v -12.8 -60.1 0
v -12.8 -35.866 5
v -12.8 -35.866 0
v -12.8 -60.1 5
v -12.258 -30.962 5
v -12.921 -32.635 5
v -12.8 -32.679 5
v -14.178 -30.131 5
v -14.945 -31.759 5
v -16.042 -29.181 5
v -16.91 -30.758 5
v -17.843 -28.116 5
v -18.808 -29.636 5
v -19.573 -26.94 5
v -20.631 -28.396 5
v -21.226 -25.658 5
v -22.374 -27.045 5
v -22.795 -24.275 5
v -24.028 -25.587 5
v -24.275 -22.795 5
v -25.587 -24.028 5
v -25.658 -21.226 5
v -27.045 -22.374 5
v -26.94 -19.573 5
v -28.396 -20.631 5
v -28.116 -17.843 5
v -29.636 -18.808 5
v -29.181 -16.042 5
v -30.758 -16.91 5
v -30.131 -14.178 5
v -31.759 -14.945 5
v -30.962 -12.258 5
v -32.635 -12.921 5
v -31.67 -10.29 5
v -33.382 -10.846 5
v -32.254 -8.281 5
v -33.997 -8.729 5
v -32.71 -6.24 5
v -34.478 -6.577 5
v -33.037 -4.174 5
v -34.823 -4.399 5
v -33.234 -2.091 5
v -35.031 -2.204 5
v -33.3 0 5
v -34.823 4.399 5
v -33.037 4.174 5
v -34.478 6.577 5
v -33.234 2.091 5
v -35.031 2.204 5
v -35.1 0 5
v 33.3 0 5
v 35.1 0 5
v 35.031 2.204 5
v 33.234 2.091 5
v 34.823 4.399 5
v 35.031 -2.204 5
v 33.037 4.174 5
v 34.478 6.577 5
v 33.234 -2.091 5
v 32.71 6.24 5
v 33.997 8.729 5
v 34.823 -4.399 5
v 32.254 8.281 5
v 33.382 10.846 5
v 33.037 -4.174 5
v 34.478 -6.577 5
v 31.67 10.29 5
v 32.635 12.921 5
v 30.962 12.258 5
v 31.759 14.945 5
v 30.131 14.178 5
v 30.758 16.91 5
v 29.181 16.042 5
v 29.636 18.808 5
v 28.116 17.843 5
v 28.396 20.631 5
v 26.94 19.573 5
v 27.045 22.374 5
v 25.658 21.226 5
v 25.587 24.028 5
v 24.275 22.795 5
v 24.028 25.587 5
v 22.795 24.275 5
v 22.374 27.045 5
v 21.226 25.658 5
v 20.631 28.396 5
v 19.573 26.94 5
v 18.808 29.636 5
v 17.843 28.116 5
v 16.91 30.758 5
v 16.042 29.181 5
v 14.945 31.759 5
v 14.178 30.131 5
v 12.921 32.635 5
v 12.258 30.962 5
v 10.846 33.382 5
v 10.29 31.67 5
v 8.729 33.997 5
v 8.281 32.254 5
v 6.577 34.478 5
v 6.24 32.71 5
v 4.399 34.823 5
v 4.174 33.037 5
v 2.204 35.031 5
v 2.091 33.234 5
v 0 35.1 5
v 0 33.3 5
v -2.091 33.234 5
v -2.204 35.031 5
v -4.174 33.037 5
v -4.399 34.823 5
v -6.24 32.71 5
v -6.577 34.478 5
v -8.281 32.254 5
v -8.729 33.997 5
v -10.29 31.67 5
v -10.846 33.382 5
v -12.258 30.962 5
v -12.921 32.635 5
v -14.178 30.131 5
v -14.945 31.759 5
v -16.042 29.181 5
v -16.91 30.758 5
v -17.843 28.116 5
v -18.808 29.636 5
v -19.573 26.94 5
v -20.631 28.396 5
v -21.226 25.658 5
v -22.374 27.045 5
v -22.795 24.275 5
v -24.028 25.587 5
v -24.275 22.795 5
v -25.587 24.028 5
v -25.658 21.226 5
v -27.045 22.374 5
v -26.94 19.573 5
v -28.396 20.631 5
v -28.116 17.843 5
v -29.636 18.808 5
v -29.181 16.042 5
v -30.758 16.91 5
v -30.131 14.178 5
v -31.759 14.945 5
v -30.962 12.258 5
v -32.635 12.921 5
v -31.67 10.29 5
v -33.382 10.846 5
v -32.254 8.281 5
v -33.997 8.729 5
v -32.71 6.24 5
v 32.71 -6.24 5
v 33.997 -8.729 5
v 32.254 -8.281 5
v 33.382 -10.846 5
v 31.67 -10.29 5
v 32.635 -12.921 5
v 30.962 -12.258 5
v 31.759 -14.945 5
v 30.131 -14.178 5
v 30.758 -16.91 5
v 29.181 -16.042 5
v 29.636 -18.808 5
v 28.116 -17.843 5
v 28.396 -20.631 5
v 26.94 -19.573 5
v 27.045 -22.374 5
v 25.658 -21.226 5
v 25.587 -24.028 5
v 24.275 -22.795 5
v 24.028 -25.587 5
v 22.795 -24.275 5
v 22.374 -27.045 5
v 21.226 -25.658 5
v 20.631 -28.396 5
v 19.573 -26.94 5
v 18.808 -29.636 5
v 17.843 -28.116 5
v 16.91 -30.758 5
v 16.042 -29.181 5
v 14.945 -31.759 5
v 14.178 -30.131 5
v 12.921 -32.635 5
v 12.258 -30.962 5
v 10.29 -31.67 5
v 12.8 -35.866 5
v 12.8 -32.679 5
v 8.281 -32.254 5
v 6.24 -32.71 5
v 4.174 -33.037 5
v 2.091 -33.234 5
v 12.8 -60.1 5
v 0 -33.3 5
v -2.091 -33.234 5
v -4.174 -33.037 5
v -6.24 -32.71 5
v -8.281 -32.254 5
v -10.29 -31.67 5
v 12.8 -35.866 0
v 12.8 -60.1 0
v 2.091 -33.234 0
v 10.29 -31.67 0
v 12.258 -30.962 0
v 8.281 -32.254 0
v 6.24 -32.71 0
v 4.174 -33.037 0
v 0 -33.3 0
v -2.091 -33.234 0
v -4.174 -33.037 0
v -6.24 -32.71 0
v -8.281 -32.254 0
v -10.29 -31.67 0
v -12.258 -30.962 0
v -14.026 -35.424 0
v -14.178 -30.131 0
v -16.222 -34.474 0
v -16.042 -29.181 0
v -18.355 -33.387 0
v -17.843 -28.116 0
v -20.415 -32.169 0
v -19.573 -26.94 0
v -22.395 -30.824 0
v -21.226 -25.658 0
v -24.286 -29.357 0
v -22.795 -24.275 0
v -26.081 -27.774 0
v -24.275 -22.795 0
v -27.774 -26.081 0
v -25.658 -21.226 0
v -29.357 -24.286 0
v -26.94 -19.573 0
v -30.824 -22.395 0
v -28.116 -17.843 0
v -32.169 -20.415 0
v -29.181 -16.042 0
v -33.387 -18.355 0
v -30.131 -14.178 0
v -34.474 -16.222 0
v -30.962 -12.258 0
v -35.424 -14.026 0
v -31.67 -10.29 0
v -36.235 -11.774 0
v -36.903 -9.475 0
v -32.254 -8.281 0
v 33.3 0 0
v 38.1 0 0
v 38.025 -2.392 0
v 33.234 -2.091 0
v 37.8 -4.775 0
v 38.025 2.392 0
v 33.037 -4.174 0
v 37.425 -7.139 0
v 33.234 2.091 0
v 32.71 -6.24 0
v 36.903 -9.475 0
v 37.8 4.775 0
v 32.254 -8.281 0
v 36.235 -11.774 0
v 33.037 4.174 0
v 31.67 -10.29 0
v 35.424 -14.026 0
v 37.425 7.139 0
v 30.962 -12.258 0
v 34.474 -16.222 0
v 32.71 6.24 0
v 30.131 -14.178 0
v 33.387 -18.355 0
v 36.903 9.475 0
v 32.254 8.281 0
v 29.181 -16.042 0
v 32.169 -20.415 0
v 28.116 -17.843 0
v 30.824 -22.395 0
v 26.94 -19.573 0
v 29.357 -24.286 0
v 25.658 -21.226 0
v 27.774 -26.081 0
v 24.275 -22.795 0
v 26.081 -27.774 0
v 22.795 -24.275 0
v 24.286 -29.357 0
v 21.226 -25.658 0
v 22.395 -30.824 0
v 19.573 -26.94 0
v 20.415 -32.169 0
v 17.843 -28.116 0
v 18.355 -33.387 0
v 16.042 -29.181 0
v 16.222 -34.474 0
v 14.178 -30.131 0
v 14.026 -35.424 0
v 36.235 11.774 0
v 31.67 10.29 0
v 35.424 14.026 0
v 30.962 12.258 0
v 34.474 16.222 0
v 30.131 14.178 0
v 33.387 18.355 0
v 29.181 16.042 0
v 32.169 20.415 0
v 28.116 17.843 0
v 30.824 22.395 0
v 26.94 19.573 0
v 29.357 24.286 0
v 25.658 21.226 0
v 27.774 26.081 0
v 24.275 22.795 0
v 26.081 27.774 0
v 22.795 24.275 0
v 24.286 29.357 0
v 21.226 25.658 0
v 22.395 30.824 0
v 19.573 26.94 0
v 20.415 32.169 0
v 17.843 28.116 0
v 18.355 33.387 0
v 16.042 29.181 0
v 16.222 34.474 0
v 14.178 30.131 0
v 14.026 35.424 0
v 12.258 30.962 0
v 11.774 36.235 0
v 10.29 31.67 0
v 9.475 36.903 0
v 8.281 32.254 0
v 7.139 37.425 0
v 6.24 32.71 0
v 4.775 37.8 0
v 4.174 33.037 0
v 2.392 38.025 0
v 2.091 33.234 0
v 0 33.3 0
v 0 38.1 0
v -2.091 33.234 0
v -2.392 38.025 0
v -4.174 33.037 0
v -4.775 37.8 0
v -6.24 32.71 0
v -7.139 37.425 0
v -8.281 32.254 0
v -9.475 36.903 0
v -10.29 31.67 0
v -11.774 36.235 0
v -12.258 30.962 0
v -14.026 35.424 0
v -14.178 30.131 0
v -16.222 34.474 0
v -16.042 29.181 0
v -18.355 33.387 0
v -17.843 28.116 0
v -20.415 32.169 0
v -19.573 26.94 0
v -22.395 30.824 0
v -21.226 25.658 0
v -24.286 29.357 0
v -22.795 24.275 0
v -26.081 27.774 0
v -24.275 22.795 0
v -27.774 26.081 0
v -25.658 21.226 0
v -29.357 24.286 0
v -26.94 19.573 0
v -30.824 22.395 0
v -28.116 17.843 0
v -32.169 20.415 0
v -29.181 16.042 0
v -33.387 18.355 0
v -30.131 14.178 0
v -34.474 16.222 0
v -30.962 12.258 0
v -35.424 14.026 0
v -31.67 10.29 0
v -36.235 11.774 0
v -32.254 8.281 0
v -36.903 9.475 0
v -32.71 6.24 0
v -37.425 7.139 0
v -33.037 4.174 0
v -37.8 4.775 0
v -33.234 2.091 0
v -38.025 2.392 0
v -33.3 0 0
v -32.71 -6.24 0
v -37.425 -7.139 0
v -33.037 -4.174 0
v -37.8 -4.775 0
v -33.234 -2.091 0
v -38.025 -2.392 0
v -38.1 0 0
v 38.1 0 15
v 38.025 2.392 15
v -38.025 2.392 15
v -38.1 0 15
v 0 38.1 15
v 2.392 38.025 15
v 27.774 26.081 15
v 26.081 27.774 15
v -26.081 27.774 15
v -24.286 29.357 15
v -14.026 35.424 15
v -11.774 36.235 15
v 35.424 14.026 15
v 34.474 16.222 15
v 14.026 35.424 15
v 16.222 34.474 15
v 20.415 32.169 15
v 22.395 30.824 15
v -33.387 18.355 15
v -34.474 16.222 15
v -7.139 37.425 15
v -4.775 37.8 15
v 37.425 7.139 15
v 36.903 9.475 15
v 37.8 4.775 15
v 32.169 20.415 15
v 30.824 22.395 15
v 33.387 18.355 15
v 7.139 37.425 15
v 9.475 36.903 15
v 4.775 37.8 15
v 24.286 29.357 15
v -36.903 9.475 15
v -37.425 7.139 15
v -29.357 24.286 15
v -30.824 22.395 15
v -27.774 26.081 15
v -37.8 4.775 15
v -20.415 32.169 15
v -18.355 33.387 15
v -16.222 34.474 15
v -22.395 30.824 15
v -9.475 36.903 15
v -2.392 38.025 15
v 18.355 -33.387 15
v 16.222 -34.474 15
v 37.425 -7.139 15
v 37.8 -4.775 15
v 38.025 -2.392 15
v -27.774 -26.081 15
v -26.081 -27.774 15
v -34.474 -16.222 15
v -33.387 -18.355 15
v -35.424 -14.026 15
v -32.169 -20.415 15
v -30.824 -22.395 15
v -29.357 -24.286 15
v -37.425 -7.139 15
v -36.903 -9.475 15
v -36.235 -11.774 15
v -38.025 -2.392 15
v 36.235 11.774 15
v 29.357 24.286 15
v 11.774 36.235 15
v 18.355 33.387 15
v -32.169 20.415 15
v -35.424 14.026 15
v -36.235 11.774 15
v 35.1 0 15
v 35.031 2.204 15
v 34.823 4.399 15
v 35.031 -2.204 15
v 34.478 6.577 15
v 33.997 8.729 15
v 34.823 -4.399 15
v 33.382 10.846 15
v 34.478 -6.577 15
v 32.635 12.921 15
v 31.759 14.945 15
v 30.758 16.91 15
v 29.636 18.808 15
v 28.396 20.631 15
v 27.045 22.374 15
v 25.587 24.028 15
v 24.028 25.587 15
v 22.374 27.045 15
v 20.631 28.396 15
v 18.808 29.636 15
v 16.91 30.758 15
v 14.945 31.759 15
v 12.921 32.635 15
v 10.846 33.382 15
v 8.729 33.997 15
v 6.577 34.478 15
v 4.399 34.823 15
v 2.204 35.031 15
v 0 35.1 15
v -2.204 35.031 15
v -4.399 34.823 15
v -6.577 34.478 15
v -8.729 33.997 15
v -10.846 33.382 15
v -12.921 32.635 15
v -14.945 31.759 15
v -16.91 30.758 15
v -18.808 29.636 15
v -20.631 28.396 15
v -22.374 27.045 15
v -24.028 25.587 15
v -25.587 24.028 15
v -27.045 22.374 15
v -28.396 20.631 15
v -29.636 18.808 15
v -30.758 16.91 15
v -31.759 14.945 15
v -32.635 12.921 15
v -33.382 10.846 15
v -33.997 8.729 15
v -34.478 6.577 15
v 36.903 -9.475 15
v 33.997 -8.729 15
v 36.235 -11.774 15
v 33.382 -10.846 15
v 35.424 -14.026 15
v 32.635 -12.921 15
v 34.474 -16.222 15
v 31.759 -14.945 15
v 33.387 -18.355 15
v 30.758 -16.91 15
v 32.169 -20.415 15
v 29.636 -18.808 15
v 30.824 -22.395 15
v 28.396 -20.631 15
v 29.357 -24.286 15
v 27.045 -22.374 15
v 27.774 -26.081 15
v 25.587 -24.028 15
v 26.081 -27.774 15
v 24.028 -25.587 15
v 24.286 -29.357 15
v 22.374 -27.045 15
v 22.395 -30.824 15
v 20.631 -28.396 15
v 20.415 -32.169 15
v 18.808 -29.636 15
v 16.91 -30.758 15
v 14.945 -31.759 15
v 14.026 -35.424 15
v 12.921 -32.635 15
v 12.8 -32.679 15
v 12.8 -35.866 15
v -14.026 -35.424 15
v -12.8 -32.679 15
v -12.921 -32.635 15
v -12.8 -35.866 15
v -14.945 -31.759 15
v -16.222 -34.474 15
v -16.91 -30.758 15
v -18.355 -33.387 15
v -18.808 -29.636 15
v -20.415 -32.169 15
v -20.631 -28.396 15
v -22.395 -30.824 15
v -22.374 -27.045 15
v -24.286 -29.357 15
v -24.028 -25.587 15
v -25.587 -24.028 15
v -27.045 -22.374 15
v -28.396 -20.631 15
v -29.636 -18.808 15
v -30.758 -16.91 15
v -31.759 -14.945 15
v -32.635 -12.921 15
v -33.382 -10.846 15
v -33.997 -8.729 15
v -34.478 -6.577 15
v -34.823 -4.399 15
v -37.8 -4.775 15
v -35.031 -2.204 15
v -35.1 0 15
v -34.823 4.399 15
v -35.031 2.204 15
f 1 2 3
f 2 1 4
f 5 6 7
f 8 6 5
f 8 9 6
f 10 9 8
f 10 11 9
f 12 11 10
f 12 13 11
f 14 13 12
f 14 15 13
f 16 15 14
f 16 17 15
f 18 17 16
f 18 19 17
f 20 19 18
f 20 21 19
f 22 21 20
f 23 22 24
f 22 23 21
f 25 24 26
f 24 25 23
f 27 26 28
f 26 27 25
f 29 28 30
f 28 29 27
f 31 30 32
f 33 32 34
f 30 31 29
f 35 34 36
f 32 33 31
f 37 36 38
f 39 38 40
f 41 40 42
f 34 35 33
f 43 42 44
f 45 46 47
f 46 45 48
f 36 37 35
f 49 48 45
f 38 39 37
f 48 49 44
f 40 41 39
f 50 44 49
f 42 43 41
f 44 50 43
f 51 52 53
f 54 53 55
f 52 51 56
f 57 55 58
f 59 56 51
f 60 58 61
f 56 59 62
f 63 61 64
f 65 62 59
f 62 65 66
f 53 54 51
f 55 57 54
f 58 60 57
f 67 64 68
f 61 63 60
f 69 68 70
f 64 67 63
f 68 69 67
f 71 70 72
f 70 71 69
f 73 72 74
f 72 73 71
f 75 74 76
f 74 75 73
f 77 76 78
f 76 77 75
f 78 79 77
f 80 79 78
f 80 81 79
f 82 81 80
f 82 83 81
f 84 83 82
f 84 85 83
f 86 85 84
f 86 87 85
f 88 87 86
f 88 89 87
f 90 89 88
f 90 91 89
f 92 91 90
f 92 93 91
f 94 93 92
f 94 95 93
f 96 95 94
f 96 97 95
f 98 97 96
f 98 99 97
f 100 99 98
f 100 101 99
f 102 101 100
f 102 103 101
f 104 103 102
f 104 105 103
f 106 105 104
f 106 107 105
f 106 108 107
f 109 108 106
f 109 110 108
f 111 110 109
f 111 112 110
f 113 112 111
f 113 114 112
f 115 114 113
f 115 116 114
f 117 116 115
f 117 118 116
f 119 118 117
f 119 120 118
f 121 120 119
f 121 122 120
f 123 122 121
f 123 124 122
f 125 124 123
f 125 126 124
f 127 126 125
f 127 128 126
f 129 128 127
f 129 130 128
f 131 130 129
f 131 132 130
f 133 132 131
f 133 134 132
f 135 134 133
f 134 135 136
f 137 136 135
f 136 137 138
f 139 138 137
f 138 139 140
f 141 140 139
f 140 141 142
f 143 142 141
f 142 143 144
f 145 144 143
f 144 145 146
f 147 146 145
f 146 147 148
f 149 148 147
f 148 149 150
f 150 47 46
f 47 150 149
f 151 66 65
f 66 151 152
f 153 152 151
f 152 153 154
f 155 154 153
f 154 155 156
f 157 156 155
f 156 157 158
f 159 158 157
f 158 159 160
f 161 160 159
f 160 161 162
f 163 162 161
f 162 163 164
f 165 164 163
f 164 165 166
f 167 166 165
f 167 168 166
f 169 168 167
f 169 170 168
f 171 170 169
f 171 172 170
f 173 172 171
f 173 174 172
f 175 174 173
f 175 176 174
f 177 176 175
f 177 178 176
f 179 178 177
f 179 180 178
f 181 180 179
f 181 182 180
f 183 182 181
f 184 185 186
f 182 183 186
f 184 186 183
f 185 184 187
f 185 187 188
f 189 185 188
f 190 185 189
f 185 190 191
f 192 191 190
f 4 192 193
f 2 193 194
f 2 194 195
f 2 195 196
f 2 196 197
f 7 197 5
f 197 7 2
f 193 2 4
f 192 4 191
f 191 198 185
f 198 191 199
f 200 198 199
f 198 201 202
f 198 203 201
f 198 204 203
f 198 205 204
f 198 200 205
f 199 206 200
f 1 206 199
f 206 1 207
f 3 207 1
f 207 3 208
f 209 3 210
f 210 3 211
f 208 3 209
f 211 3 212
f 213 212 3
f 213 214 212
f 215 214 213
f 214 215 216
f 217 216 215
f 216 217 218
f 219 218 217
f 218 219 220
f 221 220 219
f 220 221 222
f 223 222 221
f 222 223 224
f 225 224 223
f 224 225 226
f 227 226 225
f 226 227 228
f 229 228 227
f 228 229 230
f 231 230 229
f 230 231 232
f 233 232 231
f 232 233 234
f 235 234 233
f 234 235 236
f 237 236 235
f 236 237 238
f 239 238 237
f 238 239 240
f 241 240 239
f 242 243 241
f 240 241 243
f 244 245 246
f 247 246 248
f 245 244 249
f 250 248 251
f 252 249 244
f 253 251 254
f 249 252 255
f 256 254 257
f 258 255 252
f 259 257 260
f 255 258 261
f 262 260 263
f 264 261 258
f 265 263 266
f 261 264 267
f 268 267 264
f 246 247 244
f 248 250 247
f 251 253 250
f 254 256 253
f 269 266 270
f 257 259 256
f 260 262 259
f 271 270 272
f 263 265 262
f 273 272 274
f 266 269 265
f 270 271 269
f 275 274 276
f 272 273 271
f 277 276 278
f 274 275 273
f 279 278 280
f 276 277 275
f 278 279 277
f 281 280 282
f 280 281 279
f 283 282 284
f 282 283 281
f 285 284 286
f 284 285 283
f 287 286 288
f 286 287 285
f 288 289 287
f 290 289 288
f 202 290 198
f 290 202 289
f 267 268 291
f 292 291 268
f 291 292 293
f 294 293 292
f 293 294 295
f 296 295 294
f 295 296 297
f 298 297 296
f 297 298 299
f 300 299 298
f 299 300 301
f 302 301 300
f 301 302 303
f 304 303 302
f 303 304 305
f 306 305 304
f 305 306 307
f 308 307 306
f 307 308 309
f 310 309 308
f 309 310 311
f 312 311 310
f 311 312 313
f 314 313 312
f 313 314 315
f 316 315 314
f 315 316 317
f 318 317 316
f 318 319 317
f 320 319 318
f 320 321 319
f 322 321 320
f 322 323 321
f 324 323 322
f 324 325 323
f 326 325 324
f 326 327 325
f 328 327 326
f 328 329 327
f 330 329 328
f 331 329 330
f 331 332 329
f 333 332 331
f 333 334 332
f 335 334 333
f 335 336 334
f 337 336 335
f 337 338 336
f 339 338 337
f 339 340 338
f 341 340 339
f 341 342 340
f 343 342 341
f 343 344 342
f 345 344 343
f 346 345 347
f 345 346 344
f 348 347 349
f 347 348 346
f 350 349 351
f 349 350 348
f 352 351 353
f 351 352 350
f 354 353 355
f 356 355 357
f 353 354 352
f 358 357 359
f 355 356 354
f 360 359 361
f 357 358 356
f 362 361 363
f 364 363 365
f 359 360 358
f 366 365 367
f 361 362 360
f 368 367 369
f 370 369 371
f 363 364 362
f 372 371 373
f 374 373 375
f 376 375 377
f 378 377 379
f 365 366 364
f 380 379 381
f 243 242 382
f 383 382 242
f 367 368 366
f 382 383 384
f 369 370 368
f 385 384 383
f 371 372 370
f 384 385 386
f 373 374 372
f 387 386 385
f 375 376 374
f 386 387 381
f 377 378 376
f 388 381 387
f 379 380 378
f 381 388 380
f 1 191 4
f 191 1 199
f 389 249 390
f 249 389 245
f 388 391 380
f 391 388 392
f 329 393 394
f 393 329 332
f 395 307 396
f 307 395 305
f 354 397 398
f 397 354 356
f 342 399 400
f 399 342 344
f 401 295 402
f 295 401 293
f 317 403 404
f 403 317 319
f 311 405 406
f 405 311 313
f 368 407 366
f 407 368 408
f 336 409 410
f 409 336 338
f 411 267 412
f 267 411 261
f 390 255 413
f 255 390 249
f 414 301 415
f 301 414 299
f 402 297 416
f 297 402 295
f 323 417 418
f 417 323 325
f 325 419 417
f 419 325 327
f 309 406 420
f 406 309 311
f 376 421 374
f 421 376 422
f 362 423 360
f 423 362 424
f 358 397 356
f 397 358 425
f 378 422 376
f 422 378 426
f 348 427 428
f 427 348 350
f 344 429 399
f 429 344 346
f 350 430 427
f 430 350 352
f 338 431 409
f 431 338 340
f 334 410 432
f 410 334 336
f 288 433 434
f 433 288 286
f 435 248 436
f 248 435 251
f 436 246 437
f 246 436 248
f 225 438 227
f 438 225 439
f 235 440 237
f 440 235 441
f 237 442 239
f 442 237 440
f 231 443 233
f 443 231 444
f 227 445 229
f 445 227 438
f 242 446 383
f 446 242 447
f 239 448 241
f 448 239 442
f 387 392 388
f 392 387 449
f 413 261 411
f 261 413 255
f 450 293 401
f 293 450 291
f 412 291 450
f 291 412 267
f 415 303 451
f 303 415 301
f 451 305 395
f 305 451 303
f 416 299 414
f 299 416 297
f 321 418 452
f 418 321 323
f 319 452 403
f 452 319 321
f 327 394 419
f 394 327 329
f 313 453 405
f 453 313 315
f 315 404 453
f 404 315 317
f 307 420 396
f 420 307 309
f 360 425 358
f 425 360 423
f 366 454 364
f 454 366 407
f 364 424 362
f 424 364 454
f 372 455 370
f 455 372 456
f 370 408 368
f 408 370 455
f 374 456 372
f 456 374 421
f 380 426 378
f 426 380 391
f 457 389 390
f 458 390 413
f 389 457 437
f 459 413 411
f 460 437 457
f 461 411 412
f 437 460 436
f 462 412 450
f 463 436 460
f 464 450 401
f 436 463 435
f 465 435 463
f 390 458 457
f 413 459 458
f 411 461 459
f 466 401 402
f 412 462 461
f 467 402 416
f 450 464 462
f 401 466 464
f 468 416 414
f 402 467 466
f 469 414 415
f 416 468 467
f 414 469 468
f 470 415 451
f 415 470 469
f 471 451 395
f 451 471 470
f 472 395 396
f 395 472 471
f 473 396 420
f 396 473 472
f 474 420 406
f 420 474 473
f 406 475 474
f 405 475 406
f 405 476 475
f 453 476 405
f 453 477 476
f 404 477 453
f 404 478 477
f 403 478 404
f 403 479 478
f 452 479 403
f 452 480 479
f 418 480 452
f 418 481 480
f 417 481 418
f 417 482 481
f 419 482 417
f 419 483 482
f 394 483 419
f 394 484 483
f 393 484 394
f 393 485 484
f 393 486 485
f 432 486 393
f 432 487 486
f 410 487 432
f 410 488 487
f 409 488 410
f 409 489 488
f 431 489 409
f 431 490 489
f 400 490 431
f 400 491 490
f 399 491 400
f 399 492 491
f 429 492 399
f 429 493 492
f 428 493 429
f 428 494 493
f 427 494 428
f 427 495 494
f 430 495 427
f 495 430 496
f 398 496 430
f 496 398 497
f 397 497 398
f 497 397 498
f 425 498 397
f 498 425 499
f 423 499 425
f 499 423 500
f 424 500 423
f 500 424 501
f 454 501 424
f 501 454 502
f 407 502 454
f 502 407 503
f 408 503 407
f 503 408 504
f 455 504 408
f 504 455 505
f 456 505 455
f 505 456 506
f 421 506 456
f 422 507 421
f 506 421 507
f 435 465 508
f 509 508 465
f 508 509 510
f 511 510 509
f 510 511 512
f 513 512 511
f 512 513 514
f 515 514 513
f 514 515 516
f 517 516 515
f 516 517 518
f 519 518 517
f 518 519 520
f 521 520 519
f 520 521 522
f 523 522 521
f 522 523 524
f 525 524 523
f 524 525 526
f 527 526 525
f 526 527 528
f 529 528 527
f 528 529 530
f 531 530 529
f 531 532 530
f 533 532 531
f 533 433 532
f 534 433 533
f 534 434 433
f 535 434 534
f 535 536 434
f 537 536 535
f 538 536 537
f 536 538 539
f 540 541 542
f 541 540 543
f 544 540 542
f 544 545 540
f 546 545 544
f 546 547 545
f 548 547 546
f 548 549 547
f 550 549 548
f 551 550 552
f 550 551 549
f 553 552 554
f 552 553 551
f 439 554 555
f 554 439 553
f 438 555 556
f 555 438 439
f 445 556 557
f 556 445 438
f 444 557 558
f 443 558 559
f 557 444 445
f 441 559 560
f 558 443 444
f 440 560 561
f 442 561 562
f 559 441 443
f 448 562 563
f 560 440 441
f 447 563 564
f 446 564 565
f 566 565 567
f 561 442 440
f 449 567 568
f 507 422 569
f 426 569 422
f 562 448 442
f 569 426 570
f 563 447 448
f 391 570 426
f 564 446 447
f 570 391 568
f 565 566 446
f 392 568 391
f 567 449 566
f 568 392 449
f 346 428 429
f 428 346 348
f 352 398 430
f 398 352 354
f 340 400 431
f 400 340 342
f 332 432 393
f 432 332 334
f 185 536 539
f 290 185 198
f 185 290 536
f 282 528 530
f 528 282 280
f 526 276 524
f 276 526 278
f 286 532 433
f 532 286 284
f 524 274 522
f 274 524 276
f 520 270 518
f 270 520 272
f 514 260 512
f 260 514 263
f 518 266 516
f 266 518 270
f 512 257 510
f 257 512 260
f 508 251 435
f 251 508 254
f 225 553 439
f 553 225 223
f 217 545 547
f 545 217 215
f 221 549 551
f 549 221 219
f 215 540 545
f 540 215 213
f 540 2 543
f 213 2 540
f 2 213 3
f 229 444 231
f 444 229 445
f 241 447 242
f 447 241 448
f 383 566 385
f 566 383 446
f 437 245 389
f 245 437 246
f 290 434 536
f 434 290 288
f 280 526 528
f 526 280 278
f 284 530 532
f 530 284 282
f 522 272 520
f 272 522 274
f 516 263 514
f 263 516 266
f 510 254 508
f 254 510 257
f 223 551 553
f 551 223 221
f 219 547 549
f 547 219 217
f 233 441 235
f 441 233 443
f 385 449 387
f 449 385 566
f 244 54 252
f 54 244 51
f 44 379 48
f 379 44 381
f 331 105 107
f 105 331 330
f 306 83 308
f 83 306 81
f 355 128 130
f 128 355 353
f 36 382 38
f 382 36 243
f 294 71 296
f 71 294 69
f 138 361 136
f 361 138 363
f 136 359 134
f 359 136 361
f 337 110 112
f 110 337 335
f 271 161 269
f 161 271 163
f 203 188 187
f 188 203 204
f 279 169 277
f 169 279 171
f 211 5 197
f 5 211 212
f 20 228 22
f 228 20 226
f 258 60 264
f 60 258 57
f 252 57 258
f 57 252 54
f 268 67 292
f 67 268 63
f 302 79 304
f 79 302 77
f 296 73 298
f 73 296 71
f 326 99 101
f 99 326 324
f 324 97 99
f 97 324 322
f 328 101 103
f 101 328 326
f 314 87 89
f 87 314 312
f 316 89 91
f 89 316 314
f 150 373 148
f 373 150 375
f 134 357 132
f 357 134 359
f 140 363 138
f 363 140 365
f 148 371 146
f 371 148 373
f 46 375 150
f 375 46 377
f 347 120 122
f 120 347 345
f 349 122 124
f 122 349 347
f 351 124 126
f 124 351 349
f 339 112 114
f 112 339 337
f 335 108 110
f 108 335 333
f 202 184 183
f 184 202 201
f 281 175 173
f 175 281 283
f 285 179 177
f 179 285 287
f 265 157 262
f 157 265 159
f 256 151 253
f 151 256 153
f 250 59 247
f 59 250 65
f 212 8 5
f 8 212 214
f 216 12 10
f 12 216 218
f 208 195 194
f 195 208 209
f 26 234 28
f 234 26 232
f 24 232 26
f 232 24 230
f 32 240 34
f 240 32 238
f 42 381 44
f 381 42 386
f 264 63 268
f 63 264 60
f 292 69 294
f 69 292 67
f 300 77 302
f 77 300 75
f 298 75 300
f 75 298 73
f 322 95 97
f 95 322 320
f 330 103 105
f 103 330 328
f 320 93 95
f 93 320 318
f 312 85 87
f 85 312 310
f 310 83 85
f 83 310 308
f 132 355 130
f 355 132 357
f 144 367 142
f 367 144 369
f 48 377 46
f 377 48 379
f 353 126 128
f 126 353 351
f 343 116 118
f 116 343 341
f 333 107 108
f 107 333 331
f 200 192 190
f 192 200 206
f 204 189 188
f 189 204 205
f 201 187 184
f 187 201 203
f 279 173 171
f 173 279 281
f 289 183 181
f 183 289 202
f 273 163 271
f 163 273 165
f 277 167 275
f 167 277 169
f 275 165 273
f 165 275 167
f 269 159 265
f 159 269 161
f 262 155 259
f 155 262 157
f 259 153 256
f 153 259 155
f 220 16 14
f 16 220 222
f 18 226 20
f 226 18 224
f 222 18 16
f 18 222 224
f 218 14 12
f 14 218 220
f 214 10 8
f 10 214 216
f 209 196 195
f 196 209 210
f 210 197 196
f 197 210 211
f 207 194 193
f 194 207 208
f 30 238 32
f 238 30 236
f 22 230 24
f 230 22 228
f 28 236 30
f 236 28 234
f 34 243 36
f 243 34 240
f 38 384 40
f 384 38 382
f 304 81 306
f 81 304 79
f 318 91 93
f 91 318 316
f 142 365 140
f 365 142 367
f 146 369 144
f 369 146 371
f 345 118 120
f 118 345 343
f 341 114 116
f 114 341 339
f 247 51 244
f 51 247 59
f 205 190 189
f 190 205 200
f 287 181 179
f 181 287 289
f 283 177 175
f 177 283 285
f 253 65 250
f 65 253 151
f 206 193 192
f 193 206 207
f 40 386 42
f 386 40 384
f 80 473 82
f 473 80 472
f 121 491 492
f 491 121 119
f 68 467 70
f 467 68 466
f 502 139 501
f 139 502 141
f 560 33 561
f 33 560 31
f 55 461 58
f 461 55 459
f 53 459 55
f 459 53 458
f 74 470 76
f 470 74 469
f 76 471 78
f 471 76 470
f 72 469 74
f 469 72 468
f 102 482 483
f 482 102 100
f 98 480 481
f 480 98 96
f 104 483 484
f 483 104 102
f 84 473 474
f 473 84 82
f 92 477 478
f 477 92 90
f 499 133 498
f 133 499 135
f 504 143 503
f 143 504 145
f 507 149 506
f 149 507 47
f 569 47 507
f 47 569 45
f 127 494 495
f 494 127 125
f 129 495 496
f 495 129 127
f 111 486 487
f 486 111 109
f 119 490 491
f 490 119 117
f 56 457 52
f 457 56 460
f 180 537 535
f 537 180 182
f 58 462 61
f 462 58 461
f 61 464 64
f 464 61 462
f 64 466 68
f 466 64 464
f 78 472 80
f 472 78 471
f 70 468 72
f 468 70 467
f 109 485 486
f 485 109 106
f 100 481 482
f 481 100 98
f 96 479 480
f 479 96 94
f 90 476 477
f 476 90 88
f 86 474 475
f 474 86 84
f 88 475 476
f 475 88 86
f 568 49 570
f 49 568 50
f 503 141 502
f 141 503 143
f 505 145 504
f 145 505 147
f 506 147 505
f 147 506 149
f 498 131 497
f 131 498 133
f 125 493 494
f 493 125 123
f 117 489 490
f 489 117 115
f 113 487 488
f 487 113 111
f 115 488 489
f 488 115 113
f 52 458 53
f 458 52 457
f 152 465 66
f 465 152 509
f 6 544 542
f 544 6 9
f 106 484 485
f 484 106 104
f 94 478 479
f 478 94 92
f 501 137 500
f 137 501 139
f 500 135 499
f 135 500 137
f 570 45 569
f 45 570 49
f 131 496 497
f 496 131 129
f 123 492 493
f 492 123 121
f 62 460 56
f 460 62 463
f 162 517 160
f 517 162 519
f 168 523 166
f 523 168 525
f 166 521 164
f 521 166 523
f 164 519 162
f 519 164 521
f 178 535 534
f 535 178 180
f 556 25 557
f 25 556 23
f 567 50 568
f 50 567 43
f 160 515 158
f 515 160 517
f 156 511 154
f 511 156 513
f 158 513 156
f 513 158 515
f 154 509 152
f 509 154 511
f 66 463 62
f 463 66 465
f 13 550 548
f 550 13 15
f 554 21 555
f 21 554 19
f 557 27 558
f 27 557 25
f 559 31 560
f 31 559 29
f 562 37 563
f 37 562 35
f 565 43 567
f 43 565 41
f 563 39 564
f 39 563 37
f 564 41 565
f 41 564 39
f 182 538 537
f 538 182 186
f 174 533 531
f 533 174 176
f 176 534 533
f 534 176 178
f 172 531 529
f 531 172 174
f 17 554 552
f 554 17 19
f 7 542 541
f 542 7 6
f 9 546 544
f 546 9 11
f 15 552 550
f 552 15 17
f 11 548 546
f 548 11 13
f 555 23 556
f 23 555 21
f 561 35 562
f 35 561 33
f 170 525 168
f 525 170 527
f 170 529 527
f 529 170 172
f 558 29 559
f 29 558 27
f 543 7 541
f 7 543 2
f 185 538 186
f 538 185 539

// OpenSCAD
//fn=numb of fragments; fa=min angle; fs=min size

$fn=100;
$fa=12;
$fs=2;

Are=35.1;
Ari=33.3;
Hae=10;
Hai=5;
AR=38.1;
Har=Hae+Hai;

Lx=25.6;
Ly=28.5;
Lyr=25;

Tre=13.25;
Tri=9.8;
RT=16.25;
Hti=5;
Hte=10;
Hrt=15;

Lt=100;


//Acoplamiento Anemómetro
difference(){
    union(){
        translate([-Lx/2,-Lyr-Are,0])cube([Lx,Ly,Hai], center=false);
        cylinder(Har,AR,AR,center=false);
    }

    cylinder(Hai,Ari,Ari,center=false);
    translate([0,0,Hai])cylinder(Hae,Are,Are,center=false);
translate([-Lx/2,-Lyr-Are,Hai])cube([Lx,Ly,Har], center = false);

}        
